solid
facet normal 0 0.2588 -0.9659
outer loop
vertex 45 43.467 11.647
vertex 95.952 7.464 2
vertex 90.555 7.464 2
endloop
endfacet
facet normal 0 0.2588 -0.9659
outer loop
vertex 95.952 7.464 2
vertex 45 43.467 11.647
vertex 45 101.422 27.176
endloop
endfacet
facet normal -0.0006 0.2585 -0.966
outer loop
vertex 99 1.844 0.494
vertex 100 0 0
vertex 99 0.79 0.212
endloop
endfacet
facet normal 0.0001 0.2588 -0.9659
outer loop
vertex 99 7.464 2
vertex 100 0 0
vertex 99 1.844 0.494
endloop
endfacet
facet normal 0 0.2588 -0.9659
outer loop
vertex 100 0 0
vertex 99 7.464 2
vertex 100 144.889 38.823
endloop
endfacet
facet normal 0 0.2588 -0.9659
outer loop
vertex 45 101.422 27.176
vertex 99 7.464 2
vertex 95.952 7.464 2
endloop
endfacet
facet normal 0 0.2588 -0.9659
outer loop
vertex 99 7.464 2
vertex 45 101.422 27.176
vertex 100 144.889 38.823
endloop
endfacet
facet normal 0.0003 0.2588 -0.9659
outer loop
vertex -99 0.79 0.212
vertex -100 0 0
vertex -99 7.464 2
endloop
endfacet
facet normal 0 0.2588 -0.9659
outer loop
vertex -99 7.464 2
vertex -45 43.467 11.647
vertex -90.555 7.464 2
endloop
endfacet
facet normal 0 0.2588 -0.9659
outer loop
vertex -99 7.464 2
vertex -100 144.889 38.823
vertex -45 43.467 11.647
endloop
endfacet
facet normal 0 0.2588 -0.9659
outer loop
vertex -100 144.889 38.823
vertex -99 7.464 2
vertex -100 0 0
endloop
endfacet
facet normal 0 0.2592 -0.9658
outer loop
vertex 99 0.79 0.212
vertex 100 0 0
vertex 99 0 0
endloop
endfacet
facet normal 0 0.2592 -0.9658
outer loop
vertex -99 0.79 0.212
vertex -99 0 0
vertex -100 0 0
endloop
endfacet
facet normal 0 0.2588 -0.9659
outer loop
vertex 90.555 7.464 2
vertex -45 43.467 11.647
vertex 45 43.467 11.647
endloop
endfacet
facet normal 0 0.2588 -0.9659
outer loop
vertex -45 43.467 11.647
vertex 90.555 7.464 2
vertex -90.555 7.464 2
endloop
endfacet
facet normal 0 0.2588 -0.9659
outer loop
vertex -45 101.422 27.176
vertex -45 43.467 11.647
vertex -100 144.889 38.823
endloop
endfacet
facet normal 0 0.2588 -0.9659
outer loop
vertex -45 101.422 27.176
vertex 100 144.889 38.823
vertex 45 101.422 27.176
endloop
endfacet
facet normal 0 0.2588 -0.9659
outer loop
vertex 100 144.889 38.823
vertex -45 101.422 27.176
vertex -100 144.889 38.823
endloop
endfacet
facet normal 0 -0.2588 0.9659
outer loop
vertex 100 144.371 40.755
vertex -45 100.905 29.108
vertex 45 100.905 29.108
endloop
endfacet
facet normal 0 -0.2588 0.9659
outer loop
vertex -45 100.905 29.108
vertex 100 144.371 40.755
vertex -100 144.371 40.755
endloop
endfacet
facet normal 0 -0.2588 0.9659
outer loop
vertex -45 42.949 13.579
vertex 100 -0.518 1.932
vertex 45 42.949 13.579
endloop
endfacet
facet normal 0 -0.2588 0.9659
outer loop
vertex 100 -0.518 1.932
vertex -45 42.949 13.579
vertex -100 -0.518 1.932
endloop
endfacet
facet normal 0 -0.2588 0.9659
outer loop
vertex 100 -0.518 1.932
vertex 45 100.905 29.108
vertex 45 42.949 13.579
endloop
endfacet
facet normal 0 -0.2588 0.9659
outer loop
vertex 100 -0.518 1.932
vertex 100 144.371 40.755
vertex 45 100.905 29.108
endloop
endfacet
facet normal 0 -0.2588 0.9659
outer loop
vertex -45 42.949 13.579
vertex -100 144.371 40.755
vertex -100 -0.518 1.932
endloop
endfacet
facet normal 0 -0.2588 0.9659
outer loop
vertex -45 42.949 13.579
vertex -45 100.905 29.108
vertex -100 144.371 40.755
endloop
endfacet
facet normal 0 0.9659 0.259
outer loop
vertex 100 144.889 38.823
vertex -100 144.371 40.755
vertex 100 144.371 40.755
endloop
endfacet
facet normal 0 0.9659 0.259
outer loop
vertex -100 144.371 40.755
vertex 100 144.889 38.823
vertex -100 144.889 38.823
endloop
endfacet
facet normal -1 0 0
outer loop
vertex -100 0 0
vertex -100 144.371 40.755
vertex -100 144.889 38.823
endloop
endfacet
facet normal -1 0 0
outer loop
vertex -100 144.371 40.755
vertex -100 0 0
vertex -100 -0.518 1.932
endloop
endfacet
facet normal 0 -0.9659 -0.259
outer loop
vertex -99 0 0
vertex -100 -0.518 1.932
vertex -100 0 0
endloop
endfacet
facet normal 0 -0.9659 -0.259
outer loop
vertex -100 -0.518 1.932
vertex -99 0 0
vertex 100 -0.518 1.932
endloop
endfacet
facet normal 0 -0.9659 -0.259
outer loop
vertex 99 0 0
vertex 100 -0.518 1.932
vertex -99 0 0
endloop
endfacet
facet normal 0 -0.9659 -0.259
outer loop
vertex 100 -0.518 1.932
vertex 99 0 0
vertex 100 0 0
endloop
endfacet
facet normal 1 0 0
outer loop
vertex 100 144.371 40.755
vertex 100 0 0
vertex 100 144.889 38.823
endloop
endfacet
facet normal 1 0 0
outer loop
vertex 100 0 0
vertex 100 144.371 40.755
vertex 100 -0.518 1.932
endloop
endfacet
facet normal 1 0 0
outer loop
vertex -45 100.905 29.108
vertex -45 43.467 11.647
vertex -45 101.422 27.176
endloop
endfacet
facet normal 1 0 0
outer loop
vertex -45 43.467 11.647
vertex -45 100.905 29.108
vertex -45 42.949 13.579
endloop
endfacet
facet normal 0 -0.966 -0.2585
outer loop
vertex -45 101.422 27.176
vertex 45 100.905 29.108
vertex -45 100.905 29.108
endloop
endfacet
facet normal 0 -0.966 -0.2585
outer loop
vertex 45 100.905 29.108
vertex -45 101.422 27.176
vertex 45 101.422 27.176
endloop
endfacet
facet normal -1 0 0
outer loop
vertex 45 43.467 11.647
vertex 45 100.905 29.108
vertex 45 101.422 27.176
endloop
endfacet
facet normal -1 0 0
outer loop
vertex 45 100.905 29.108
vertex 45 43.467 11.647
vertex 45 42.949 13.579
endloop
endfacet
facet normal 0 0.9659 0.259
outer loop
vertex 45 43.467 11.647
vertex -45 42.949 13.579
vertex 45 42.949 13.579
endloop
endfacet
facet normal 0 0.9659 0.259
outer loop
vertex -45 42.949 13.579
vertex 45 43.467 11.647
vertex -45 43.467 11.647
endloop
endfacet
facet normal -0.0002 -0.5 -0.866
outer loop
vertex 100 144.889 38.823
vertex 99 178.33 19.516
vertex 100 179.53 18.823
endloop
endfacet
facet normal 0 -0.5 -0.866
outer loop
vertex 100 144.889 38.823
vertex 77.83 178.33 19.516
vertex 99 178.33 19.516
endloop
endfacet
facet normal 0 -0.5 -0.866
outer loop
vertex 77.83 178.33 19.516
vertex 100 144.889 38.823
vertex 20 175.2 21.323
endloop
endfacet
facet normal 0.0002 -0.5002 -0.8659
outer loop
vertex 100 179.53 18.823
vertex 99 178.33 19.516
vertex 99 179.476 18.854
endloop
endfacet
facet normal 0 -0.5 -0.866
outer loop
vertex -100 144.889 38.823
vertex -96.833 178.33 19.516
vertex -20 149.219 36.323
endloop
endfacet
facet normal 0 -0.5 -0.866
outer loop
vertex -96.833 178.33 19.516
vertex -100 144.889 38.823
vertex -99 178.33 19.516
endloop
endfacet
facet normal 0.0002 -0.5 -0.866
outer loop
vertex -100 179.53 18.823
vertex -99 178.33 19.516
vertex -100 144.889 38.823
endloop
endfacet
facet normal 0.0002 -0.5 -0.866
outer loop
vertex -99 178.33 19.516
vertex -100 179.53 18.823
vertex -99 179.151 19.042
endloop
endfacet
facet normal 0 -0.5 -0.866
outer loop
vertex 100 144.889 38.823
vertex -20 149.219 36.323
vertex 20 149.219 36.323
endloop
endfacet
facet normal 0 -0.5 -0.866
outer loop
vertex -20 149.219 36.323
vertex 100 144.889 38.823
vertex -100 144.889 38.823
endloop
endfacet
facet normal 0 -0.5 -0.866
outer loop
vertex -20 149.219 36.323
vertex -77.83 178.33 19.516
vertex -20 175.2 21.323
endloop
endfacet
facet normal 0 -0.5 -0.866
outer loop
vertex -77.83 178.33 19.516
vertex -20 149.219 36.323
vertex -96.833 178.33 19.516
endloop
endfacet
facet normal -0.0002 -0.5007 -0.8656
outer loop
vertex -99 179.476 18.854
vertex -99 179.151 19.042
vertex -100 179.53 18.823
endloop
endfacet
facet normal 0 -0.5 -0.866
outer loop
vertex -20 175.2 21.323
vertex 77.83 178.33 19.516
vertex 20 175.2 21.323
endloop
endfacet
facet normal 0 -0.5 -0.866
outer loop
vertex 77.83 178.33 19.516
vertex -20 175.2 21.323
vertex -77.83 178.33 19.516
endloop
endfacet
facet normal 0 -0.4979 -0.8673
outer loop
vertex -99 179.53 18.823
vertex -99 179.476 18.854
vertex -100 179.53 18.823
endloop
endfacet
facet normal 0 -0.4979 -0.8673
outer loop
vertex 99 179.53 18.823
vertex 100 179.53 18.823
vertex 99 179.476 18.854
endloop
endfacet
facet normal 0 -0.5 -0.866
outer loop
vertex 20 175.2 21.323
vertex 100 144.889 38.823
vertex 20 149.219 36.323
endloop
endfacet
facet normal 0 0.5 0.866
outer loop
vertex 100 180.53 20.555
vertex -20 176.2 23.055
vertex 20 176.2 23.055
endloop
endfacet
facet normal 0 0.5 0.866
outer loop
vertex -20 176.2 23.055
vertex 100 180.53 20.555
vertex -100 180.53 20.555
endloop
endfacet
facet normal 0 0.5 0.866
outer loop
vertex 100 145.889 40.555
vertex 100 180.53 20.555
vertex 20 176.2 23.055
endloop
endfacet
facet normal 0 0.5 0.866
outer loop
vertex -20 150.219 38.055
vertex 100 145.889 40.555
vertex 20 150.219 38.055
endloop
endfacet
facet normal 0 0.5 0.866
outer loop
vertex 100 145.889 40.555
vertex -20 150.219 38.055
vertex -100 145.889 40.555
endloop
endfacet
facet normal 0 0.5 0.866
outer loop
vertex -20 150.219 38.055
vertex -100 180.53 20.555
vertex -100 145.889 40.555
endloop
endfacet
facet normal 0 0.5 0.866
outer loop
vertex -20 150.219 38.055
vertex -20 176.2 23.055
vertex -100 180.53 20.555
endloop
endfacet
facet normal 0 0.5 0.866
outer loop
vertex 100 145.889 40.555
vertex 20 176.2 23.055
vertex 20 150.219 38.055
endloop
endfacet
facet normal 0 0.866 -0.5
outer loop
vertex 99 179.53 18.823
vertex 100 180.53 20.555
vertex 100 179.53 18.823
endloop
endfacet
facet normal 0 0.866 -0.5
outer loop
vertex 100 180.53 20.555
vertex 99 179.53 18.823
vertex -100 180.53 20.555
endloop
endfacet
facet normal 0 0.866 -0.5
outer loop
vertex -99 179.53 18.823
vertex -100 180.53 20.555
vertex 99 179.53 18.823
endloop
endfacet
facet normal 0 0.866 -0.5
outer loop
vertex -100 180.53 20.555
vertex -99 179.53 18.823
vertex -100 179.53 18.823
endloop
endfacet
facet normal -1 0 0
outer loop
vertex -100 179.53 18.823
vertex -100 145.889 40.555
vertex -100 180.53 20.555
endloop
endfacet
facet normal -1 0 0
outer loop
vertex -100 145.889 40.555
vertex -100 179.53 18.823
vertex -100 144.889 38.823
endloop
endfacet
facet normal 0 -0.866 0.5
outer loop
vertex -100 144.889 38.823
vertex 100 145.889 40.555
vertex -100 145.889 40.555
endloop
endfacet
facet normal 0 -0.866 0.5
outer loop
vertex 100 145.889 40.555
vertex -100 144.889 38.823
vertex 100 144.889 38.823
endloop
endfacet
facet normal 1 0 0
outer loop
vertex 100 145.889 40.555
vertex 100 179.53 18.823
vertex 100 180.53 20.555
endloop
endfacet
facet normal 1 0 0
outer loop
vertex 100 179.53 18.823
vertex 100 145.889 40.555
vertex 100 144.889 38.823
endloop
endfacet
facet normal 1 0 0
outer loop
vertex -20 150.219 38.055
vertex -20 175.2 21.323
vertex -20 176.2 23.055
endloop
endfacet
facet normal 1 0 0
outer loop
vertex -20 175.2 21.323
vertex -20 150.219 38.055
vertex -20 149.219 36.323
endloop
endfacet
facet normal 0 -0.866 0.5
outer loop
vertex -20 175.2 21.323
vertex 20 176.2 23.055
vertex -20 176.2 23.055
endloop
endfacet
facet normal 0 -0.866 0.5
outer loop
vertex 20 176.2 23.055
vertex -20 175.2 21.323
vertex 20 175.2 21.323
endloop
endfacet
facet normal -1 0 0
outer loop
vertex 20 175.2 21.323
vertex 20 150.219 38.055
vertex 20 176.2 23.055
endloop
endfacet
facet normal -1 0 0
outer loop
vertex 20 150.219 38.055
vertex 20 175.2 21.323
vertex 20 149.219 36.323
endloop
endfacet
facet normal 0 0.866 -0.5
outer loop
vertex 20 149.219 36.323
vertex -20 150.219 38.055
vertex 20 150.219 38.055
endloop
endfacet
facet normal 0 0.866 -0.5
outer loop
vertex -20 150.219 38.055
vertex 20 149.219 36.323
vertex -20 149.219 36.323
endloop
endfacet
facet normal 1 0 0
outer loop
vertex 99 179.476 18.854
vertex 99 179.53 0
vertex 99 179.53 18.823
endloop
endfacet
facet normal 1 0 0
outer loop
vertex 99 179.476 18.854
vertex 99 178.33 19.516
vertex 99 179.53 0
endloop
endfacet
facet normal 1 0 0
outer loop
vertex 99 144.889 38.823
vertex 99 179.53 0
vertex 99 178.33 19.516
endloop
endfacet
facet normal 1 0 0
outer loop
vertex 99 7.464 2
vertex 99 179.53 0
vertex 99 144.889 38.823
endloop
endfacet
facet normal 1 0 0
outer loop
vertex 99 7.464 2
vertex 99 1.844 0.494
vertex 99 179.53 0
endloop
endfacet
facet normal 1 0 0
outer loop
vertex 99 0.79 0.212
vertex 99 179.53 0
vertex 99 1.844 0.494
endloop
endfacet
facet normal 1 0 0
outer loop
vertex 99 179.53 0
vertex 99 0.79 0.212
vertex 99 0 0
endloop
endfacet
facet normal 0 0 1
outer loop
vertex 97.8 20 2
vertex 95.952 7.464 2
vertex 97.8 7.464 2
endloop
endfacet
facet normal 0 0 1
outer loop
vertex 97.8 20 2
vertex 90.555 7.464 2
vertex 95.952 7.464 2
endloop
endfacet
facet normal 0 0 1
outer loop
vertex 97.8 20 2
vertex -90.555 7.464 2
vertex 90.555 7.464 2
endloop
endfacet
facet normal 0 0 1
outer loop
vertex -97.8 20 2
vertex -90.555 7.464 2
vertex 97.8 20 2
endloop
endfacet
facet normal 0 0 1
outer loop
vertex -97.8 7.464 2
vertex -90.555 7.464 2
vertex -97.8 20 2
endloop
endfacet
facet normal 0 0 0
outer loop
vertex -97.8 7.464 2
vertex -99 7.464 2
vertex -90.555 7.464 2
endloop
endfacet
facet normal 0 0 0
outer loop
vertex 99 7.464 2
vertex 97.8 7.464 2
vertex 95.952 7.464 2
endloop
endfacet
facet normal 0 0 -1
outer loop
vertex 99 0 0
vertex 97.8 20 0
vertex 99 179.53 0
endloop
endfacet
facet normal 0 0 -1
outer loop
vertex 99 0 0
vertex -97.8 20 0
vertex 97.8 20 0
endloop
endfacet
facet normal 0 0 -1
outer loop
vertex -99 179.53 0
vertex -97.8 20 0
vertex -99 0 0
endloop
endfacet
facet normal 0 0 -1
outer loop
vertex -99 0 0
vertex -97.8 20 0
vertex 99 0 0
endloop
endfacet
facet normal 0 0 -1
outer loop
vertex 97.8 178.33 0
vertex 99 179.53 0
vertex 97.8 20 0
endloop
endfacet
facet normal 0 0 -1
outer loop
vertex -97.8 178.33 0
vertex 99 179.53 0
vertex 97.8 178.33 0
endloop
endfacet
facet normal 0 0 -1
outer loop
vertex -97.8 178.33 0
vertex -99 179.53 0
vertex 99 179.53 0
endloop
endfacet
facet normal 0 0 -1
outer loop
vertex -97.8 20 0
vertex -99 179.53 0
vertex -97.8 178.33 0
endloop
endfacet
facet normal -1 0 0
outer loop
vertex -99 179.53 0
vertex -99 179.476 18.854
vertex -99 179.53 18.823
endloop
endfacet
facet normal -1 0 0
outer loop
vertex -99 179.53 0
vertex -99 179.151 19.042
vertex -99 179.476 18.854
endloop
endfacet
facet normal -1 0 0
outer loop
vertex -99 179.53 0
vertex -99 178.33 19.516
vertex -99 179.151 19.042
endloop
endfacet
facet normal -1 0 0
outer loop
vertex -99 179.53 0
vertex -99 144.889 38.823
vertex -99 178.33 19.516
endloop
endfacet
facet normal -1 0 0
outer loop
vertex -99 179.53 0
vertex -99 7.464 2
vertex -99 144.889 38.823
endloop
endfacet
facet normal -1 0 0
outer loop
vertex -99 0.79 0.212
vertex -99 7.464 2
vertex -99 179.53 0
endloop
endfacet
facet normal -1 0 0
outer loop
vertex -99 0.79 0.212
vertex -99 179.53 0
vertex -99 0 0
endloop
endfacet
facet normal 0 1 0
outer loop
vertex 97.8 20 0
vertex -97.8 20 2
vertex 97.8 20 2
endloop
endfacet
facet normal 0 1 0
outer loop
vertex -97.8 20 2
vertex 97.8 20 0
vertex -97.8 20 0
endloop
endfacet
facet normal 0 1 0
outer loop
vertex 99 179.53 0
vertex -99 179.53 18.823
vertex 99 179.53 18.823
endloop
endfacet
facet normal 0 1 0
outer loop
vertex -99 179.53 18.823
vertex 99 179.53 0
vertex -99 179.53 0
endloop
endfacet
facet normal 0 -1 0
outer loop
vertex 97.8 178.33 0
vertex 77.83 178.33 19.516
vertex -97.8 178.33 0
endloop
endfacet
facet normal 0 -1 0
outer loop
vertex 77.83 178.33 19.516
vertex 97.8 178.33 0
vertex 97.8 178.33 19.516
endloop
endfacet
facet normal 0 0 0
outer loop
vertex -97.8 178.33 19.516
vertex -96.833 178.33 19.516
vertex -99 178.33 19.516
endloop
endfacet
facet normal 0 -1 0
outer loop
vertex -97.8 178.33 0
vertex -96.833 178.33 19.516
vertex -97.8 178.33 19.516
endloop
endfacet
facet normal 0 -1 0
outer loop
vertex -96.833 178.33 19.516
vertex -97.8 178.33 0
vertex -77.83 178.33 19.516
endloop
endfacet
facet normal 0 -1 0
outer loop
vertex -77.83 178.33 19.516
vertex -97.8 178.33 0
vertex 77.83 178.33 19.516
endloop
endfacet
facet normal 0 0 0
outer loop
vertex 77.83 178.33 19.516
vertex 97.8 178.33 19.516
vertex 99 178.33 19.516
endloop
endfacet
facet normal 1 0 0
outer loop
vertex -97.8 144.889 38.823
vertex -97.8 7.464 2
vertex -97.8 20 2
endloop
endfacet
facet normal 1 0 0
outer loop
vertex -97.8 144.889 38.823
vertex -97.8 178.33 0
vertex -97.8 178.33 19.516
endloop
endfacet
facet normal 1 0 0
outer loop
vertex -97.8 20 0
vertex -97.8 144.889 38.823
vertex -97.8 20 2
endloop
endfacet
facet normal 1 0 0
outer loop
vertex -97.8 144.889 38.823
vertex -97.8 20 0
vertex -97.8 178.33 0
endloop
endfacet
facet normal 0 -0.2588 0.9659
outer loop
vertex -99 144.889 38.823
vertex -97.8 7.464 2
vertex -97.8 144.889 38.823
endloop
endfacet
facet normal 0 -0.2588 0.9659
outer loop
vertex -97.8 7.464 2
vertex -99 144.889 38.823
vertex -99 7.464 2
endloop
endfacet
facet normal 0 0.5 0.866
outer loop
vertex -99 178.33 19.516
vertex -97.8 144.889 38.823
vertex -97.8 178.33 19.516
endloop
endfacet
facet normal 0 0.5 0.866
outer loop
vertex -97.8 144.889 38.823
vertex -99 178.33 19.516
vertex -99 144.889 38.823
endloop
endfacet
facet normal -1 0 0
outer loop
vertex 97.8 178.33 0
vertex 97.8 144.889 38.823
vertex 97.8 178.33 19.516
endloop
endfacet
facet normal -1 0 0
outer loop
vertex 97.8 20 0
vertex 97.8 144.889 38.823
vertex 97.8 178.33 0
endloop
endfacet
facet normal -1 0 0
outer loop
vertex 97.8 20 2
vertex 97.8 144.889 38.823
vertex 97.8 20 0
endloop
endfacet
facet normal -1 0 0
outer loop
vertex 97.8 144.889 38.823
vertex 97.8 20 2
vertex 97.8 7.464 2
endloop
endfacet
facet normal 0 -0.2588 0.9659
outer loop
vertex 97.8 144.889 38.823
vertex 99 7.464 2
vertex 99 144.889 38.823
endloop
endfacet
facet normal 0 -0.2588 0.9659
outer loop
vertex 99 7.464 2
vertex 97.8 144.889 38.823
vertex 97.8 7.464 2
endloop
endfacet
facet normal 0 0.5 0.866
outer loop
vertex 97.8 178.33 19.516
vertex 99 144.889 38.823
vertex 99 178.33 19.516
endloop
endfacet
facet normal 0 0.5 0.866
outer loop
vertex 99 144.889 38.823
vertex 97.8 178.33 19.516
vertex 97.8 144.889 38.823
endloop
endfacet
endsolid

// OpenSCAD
//
// Top cover / Oberteil
// KORRIGIERT NACH SKIZZE:
//
// - Frontlippe = 20 mm horizontal
//   -> Innenwinkel zur 15°-Hauptflaeche = exakt 15°
// - beide Seitenwaende gleich ausgerichtet
//   -> keine "fliegende" Seite mehr
// - hinten echter senkrechter Abschluss (90° zum Boden)
// - Bodenreferenz ist z = 0
//
// Export:
//   part = "cover";   // STL
//   part = "preview"; // Vorschau
//

part = "cover";   // "cover" | "preview"

// =========================
// HAUPTPARAMETER
// =========================

cover_w = 200.0;

// Skizze
main_len            = 150.0;   // 15 cm
main_angle_deg      = 15.0;    // 15°
rear_len            = 40.0;    // 4 cm
peak_inner_angle_deg= 135.0;   // 135°
front_lip_len       = 20.0;    // 2 cm

top_t      = 2.0;

// Seitenwaende
wall_inset = 1.0;
wall_t     = 1.2;

// Hinten senkrechter Abschluss
rear_wall_t = 1.2;

// =========================
// CUTOUTS
// =========================

// grosses Cutout im 150-mm-Segment
main_cutout_w  = 90.0;
main_cutout_l  = 60.0;
main_cutout_cx = 0.0;
main_cutout_cy = main_len / 2;

// kleines Cutout im 40-mm-Segment
rear_cutout_w  = 40.0;   // 4 cm
rear_cutout_l  = 30.0;   // 3 cm
rear_cutout_cx = 0.0;
rear_cutout_cy = rear_len / 2;

// =========================
// ABGELEITETE WERTE
// =========================

// Ende Hauptsegment
main_end_y = main_len * cos(main_angle_deg);
main_end_z = main_len * sin(main_angle_deg);

// Hinteres Segment:
// 15° vorne + 135° Innenwinkel => hinten -30° gegen Horizontalen
rear_angle_deg = main_angle_deg + peak_inner_angle_deg - 180.0;

// Ende hinteres Segment
rear_end_y = main_end_y + rear_len * cos(rear_angle_deg);
rear_end_z = main_end_z + rear_len * sin(rear_angle_deg);

// Nur zur Kontrolle
front_lip_angle_deg   = 0.0;  // horizontal
front_inner_angle_deg = abs(main_angle_deg - front_lip_angle_deg);
rear_to_vertical_deg  = 90.0 - abs(rear_angle_deg);

// Innenbreite zwischen Insets
inner_w = cover_w - 2*wall_inset;

// X-Positionen der Seitenwaende
x_left_wall  = -cover_w/2 + wall_inset;
x_right_wall =  cover_w/2 - wall_inset - wall_t;

echo("main_end_y =", main_end_y);
echo("main_end_z =", main_end_z);
echo("rear_angle_deg =", rear_angle_deg);
echo("rear_end_y =", rear_end_y);
echo("rear_end_z =", rear_end_z);
echo("front_inner_angle_deg =", front_inner_angle_deg);
echo("rear_to_vertical_deg =", rear_to_vertical_deg);

assert(abs(front_inner_angle_deg - 15.0) < 0.0001,
    "Front-Innenwinkel ist nicht 15°.");
assert(rear_end_z > 0,
    "Hinteres Segment endet nicht ueber dem Boden.");
assert(front_lip_len > 0,
    "front_lip_len muss > 0 sein.");

// =========================
// HELFER
// =========================

module local_panel_2d(panel_w, panel_l, cut_w=0, cut_l=0, cut_cx=0, cut_cy=0) {
    difference() {
        translate([-panel_w/2, 0])
            square([panel_w, panel_l], center = false);

        if (cut_w > 0 && cut_l > 0)
            translate([cut_cx, cut_cy])
                square([cut_w, cut_l], center = true);
    }
}

// =========================
// OBERTEILSEGMENTE
// =========================

module main_segment() {
    rotate([main_angle_deg, 0, 0])
        linear_extrude(height = top_t, convexity = 10)
            local_panel_2d(
                cover_w,
                main_len,
                main_cutout_w,
                main_cutout_l,
                main_cutout_cx,
                main_cutout_cy
            );
}

module rear_segment() {
    translate([0, main_end_y, main_end_z])
        rotate([rear_angle_deg, 0, 0])
            linear_extrude(height = top_t, convexity = 10)
                local_panel_2d(
                    cover_w,
                    rear_len,
                    rear_cutout_w,
                    rear_cutout_l,
                    rear_cutout_cx,
                    rear_cutout_cy
                );
}

// =========================
// FRONTLIPPE
// =========================
//
// Exakt die 2-cm-Lippe vorne, horizontal.
// Dadurch ist der Innenwinkel zur 15°-Hauptflaeche exakt 15°.
//

module front_lip_segment() {
    translate([
        -cover_w/2 + wall_inset,
        0,
        0
    ])
        cube([
            inner_w,
            front_lip_len,
            top_t
        ], center = false);
}

// =========================
// HINTERER SENKRECHTER ABSCHLUSS
// =========================
//
// 90° zum Boden (z=0).
//

module rear_end_wall() {
    translate([
        -cover_w/2 + wall_inset,
        rear_end_y - rear_wall_t,
        0
    ])
        cube([
            inner_w,
            rear_wall_t,
            rear_end_z + top_t
        ], center = false);
}

// =========================
// SEITENWÄNDE
// =========================
//
// Seitenprofil jetzt passend zur Skizze:
// vordere Spitze -> Peak -> hinteres Segmentende
// -> senkrecht runter auf Boden
// -> vorne 20-mm-Lippe
//
// Kein Mirror mehr.
// Beide Seiten nutzen dieselbe Matrix-Transformation.
//

module side_wall_profile_2d() {
    polygon(points = [
        [0,            0],           // vordere Spitze
        [main_end_y,   main_end_z],  // Ende 15-cm-Segment
        [rear_end_y,   rear_end_z],  // Ende 4-cm-Segment
        [rear_end_y,   0],           // hinten senkrecht auf Boden
        [front_lip_len,0]            // untere Frontlippe 20 mm
    ]);
}

module side_wall_at(xoff) {
    multmatrix(m = [
        [0, 0, 1, xoff],  // local z -> global x
        [1, 0, 0, 0   ],  // local x -> global y
        [0, 1, 0, 0   ],  // local y -> global z
        [0, 0, 0, 1   ]
    ])
        linear_extrude(height = wall_t, convexity = 10)
            side_wall_profile_2d();
}

module left_wall() {
    side_wall_at(x_left_wall);
}

module right_wall() {
    side_wall_at(x_right_wall);
}

// =========================
// ASSEMBLY
// =========================

module cover() {
    union() {
        main_segment();
        rear_segment();

        front_lip_segment();
        rear_end_wall();

        left_wall();
        right_wall();
    }
}

// =========================
// PREVIEW
// =========================

module preview_axes() {
    color([1,0,0]) cube([40,1,1], center=false); // X
    color([0,1,0]) cube([1,40,1], center=false); // Y
    color([0,0,1]) cube([1,1,40], center=false); // Z
}

module preview() {
    cover();
    preview_axes();
}

// =========================
// OUTPUT
// =========================

if (part == "preview") {
    preview();
} else {
    cover();
}
